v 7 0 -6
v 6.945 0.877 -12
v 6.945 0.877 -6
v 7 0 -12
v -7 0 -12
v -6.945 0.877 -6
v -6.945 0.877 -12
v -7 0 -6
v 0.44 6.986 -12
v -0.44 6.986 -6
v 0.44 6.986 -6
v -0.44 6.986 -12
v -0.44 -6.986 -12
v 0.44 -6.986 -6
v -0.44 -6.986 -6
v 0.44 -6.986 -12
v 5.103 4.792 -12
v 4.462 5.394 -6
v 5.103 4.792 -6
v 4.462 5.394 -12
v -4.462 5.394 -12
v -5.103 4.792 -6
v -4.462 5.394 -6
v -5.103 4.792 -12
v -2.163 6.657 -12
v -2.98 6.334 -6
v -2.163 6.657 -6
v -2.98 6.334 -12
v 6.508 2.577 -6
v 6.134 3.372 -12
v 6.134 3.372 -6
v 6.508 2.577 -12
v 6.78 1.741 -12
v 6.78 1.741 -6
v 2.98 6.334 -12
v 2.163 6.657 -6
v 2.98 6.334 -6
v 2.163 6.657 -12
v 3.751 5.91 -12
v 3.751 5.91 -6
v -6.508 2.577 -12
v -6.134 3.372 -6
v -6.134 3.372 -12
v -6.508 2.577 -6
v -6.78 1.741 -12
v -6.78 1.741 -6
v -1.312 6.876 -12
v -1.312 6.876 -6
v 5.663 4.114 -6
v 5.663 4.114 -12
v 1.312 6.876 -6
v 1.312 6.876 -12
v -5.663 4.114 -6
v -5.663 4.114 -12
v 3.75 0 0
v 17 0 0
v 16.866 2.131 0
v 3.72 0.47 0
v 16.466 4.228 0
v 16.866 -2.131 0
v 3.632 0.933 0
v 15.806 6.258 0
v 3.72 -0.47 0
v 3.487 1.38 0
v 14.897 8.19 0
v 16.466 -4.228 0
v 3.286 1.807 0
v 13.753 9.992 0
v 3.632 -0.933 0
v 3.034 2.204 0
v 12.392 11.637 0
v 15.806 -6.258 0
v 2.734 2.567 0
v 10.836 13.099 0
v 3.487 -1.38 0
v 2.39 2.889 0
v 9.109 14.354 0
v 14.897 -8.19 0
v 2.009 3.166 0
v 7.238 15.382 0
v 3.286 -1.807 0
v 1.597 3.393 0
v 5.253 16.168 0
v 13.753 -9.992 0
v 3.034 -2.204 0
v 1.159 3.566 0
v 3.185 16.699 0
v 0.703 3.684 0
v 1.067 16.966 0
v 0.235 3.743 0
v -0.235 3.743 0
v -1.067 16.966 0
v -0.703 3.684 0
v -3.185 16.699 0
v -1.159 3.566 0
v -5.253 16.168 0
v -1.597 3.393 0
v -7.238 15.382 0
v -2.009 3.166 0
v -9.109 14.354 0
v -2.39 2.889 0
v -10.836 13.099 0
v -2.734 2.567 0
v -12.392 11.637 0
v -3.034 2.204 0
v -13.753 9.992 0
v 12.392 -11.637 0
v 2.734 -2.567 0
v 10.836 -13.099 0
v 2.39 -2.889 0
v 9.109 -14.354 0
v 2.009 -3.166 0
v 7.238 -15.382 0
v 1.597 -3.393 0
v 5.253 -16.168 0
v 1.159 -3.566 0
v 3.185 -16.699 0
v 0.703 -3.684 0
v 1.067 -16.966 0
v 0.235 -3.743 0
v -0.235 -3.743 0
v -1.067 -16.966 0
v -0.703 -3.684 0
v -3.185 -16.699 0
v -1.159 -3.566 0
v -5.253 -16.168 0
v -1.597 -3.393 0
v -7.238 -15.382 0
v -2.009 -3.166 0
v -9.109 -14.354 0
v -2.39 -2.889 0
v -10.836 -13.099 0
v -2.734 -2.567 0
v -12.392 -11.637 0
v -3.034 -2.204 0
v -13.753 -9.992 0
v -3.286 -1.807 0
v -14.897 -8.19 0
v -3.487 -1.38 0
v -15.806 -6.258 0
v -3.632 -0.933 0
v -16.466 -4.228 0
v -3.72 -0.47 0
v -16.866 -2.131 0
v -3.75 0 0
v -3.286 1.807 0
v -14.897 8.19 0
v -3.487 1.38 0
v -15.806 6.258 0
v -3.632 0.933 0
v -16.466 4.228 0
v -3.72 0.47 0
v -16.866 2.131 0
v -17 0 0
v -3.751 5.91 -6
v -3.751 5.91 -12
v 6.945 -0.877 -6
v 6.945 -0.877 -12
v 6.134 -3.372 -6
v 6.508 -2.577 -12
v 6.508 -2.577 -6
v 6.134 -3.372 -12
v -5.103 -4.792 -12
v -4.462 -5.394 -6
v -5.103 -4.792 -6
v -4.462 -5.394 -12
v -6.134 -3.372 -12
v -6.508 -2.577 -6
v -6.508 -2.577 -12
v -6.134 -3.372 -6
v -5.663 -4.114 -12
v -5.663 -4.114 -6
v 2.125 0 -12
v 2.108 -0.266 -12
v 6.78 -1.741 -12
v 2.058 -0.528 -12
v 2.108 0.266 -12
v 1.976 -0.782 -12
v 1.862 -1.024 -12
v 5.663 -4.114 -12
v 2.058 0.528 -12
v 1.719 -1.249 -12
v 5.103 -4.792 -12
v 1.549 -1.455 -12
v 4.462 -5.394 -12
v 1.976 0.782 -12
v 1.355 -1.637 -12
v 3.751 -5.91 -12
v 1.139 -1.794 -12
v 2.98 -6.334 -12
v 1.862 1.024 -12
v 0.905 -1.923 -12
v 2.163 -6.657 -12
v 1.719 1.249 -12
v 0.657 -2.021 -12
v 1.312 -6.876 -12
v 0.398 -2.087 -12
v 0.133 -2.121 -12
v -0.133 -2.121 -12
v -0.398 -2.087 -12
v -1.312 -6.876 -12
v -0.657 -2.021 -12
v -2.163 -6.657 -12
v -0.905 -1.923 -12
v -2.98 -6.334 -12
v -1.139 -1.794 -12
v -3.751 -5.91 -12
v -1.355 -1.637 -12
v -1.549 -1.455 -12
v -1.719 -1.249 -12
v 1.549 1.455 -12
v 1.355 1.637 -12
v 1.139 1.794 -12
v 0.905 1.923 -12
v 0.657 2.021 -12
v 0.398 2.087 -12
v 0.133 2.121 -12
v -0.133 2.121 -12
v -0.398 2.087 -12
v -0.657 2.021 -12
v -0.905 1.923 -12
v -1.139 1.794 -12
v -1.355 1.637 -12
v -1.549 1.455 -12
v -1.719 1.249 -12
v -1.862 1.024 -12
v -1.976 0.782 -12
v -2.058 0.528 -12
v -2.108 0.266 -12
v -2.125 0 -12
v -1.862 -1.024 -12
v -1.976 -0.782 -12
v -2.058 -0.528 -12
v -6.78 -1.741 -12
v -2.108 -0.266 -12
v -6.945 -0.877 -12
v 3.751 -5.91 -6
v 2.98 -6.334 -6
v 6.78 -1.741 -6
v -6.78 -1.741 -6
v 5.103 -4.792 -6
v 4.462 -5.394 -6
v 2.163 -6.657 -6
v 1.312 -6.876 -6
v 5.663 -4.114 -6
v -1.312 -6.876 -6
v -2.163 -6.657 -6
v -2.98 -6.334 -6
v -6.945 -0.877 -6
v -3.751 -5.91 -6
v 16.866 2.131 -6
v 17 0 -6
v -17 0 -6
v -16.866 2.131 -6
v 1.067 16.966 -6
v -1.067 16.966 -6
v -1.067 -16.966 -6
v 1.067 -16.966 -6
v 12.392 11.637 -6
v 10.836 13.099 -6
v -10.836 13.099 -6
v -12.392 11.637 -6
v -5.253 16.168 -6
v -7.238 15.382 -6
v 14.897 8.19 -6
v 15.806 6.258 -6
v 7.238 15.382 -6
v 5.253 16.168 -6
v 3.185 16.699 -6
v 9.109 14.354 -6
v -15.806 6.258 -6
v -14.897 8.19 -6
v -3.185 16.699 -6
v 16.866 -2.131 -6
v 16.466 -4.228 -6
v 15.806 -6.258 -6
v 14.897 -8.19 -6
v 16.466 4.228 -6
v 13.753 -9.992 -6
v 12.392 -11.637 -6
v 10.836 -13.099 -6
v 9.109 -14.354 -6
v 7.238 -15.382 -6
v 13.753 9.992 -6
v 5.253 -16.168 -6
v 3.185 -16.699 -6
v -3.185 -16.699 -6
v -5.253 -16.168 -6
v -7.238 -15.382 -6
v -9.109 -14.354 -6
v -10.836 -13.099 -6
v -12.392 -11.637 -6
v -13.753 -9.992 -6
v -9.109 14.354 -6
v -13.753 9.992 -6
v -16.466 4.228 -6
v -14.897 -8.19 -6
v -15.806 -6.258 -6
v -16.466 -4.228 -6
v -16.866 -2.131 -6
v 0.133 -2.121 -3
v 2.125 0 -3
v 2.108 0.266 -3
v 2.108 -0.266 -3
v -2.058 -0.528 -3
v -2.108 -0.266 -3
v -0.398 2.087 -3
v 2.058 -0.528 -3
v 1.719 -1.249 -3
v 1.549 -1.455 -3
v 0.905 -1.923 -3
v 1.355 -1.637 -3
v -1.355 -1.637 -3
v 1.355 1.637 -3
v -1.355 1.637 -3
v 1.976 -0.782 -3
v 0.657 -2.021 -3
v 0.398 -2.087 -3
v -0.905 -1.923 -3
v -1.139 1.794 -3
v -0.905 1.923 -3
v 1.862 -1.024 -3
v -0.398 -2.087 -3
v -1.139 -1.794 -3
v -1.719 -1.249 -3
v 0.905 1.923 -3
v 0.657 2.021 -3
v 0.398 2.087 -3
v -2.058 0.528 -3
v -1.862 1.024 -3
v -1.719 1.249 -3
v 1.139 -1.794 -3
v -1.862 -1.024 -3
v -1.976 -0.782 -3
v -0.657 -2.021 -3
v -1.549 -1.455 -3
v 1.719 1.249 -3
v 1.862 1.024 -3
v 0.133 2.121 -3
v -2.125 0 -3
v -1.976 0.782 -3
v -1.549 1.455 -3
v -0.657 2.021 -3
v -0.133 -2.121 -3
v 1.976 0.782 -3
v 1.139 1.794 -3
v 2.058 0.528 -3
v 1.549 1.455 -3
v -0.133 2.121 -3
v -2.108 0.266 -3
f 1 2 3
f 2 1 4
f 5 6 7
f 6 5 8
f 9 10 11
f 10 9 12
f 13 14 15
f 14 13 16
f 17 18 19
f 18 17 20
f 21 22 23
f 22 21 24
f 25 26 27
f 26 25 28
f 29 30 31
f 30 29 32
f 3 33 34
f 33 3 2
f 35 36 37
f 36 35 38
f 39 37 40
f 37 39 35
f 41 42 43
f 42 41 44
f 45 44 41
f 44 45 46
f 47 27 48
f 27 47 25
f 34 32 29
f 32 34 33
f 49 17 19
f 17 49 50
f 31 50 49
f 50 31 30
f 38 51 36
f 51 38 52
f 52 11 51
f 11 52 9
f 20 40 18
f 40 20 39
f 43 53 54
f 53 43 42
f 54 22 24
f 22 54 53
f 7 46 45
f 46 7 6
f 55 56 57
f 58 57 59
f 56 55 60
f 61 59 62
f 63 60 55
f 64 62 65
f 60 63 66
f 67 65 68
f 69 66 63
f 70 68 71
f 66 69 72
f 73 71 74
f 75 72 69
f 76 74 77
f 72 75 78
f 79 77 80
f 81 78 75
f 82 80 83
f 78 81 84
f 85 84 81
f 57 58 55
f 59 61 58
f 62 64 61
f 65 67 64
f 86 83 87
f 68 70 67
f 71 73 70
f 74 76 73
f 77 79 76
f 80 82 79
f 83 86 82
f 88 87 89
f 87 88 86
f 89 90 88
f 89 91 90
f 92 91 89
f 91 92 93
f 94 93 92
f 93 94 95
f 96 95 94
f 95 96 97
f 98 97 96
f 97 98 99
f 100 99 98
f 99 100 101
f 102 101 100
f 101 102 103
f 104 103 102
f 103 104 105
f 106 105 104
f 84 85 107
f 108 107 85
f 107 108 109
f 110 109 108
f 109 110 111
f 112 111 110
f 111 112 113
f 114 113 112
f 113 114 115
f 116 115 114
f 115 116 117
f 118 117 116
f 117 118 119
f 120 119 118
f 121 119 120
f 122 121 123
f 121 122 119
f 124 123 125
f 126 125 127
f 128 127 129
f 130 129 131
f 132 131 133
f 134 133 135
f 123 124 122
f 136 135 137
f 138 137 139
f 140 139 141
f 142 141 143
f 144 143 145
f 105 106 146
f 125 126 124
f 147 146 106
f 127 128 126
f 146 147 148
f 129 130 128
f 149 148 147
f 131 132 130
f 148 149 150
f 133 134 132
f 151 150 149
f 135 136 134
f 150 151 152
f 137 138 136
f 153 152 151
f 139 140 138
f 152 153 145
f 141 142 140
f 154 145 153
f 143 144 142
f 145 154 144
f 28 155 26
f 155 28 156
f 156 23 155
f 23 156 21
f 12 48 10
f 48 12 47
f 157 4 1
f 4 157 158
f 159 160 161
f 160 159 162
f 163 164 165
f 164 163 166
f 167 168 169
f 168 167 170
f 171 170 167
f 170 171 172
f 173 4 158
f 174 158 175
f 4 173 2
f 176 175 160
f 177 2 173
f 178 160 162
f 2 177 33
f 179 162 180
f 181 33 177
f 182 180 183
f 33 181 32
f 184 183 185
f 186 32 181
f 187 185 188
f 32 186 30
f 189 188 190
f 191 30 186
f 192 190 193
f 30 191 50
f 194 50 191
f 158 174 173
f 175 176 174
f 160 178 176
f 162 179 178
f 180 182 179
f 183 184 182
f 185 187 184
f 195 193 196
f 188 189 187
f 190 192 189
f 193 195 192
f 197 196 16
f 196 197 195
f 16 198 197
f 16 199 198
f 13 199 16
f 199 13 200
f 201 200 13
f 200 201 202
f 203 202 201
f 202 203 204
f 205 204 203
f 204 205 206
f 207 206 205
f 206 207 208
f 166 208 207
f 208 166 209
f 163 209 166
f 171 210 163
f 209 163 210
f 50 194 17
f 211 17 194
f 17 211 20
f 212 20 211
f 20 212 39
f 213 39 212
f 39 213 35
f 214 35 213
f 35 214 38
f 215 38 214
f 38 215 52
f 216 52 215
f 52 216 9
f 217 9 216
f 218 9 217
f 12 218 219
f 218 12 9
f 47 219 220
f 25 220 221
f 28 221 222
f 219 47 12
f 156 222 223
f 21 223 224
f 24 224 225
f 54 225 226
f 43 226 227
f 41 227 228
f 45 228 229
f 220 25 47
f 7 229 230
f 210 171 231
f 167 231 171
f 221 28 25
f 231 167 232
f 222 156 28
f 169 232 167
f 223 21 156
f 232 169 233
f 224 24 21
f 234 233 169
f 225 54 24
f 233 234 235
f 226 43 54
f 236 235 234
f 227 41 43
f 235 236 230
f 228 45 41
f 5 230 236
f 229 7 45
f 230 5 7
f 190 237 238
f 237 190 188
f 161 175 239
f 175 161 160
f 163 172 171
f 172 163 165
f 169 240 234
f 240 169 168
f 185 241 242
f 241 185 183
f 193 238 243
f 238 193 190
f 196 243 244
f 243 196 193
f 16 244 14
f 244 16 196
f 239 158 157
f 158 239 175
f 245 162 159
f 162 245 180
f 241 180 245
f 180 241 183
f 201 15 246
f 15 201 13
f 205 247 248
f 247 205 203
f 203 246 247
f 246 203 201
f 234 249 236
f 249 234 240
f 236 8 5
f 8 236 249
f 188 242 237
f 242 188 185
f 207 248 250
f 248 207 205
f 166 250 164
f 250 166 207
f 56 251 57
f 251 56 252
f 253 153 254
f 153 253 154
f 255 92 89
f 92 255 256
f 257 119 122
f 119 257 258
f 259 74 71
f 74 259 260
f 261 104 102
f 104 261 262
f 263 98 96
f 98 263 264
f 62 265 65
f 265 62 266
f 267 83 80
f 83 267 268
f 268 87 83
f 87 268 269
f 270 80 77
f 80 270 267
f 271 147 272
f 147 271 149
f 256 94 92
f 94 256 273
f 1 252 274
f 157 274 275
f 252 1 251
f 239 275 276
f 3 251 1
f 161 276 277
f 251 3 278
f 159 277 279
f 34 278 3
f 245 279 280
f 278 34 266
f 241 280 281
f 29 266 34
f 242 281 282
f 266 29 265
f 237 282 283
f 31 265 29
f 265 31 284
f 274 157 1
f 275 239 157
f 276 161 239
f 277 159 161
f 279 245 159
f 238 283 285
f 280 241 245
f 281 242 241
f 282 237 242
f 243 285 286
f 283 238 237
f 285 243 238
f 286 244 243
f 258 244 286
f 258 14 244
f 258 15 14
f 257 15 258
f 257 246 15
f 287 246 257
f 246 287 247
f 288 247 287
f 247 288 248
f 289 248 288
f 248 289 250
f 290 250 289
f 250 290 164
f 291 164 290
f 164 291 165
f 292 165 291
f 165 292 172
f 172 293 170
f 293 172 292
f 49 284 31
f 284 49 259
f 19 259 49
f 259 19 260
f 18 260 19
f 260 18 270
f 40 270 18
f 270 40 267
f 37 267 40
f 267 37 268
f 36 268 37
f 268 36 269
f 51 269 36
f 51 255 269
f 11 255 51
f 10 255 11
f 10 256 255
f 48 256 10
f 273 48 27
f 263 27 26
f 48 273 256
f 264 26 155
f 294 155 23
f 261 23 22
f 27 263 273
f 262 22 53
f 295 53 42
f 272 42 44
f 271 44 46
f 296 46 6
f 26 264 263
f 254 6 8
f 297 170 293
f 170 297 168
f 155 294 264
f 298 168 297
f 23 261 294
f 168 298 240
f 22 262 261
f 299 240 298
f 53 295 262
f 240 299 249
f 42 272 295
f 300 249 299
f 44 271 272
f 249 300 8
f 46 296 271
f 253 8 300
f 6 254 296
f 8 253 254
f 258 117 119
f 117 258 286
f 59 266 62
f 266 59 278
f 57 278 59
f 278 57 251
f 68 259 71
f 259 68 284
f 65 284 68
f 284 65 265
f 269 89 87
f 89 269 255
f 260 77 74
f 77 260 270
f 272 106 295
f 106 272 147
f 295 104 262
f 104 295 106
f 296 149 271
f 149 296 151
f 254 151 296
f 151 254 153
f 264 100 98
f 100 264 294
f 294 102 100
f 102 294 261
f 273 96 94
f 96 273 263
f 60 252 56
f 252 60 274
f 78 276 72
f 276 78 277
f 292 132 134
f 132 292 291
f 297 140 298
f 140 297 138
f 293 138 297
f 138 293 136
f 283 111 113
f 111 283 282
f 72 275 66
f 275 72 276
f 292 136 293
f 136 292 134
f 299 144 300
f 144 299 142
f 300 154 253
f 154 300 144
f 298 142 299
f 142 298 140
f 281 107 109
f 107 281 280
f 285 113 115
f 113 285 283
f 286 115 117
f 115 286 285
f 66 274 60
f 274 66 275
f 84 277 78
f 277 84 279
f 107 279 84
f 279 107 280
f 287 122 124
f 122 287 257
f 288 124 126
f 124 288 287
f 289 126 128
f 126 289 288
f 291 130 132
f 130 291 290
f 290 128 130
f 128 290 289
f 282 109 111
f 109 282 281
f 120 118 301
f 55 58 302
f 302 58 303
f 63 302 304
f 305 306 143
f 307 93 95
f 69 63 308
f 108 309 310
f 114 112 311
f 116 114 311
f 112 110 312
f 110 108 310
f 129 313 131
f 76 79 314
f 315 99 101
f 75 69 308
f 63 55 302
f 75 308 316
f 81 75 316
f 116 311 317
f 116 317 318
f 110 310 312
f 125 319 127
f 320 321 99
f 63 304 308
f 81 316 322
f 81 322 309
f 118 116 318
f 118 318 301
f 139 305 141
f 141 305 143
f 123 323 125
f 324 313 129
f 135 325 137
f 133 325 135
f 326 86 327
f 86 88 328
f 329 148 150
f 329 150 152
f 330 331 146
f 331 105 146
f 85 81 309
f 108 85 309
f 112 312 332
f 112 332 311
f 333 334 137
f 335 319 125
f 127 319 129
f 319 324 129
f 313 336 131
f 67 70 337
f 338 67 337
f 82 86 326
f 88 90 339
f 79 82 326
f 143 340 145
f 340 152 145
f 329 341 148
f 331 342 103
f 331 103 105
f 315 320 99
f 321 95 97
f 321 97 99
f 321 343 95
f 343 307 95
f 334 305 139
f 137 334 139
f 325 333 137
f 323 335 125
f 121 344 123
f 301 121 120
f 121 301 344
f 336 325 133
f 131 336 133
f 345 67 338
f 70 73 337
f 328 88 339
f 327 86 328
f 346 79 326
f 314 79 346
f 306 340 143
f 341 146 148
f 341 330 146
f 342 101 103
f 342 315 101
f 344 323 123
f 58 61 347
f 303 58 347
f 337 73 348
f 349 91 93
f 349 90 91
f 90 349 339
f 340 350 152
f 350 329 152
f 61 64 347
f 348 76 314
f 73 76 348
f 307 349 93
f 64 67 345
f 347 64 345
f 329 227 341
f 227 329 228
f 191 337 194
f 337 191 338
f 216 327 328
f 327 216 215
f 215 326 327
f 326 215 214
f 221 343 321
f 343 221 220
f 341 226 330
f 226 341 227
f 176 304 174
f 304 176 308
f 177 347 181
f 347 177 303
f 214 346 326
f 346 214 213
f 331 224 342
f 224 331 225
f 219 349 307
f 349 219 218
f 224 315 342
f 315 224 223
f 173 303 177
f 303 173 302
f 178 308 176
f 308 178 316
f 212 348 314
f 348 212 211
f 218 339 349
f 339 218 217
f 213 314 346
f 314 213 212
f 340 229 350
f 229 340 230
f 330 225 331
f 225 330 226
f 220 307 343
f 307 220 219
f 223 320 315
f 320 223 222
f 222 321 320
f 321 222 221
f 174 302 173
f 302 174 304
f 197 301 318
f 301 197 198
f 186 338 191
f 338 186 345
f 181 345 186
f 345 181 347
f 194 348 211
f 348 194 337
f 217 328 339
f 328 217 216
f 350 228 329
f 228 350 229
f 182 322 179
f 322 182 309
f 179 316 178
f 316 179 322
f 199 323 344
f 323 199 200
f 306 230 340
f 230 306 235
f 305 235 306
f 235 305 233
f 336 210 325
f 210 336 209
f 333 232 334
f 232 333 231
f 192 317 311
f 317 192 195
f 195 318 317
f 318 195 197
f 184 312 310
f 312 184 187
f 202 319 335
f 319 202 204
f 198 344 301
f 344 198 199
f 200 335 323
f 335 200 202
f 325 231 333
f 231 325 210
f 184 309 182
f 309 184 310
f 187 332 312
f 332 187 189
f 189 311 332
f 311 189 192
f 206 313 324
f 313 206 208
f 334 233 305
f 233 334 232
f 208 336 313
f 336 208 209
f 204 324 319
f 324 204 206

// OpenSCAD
$fn = 50;


difference() {
	union() {
		translate(v = [0, 0, -12.0000000000]) {
			cylinder(h = 12, r = 7.0000000000);
		}
		translate(v = [0, 0, -6.0000000000]) {
			cylinder(h = 6, r = 17.0000000000);
		}
	}
	union() {
		translate(v = [0, 0, 0]) {
			rotate(a = [0, 0, 0]) {
				difference() {
					union() {
						#translate(v = [0, 0, -12.0000000000]) {
							cylinder(h = 12, r = 2.0000000000);
						}
						#translate(v = [0, 0, -3]) {
							cylinder(h = 3, r1 = 2.1250000000, r2 = 3.7500000000);
						}
						#translate(v = [0, 0, -12.0000000000]) {
							cylinder(h = 12, r = 2.1250000000);
						}
						#translate(v = [0, 0, -12.0000000000]) {
							cylinder(h = 12, r = 2.0000000000);
						}
					}
					union();
				}
			}
		}
	}
}
